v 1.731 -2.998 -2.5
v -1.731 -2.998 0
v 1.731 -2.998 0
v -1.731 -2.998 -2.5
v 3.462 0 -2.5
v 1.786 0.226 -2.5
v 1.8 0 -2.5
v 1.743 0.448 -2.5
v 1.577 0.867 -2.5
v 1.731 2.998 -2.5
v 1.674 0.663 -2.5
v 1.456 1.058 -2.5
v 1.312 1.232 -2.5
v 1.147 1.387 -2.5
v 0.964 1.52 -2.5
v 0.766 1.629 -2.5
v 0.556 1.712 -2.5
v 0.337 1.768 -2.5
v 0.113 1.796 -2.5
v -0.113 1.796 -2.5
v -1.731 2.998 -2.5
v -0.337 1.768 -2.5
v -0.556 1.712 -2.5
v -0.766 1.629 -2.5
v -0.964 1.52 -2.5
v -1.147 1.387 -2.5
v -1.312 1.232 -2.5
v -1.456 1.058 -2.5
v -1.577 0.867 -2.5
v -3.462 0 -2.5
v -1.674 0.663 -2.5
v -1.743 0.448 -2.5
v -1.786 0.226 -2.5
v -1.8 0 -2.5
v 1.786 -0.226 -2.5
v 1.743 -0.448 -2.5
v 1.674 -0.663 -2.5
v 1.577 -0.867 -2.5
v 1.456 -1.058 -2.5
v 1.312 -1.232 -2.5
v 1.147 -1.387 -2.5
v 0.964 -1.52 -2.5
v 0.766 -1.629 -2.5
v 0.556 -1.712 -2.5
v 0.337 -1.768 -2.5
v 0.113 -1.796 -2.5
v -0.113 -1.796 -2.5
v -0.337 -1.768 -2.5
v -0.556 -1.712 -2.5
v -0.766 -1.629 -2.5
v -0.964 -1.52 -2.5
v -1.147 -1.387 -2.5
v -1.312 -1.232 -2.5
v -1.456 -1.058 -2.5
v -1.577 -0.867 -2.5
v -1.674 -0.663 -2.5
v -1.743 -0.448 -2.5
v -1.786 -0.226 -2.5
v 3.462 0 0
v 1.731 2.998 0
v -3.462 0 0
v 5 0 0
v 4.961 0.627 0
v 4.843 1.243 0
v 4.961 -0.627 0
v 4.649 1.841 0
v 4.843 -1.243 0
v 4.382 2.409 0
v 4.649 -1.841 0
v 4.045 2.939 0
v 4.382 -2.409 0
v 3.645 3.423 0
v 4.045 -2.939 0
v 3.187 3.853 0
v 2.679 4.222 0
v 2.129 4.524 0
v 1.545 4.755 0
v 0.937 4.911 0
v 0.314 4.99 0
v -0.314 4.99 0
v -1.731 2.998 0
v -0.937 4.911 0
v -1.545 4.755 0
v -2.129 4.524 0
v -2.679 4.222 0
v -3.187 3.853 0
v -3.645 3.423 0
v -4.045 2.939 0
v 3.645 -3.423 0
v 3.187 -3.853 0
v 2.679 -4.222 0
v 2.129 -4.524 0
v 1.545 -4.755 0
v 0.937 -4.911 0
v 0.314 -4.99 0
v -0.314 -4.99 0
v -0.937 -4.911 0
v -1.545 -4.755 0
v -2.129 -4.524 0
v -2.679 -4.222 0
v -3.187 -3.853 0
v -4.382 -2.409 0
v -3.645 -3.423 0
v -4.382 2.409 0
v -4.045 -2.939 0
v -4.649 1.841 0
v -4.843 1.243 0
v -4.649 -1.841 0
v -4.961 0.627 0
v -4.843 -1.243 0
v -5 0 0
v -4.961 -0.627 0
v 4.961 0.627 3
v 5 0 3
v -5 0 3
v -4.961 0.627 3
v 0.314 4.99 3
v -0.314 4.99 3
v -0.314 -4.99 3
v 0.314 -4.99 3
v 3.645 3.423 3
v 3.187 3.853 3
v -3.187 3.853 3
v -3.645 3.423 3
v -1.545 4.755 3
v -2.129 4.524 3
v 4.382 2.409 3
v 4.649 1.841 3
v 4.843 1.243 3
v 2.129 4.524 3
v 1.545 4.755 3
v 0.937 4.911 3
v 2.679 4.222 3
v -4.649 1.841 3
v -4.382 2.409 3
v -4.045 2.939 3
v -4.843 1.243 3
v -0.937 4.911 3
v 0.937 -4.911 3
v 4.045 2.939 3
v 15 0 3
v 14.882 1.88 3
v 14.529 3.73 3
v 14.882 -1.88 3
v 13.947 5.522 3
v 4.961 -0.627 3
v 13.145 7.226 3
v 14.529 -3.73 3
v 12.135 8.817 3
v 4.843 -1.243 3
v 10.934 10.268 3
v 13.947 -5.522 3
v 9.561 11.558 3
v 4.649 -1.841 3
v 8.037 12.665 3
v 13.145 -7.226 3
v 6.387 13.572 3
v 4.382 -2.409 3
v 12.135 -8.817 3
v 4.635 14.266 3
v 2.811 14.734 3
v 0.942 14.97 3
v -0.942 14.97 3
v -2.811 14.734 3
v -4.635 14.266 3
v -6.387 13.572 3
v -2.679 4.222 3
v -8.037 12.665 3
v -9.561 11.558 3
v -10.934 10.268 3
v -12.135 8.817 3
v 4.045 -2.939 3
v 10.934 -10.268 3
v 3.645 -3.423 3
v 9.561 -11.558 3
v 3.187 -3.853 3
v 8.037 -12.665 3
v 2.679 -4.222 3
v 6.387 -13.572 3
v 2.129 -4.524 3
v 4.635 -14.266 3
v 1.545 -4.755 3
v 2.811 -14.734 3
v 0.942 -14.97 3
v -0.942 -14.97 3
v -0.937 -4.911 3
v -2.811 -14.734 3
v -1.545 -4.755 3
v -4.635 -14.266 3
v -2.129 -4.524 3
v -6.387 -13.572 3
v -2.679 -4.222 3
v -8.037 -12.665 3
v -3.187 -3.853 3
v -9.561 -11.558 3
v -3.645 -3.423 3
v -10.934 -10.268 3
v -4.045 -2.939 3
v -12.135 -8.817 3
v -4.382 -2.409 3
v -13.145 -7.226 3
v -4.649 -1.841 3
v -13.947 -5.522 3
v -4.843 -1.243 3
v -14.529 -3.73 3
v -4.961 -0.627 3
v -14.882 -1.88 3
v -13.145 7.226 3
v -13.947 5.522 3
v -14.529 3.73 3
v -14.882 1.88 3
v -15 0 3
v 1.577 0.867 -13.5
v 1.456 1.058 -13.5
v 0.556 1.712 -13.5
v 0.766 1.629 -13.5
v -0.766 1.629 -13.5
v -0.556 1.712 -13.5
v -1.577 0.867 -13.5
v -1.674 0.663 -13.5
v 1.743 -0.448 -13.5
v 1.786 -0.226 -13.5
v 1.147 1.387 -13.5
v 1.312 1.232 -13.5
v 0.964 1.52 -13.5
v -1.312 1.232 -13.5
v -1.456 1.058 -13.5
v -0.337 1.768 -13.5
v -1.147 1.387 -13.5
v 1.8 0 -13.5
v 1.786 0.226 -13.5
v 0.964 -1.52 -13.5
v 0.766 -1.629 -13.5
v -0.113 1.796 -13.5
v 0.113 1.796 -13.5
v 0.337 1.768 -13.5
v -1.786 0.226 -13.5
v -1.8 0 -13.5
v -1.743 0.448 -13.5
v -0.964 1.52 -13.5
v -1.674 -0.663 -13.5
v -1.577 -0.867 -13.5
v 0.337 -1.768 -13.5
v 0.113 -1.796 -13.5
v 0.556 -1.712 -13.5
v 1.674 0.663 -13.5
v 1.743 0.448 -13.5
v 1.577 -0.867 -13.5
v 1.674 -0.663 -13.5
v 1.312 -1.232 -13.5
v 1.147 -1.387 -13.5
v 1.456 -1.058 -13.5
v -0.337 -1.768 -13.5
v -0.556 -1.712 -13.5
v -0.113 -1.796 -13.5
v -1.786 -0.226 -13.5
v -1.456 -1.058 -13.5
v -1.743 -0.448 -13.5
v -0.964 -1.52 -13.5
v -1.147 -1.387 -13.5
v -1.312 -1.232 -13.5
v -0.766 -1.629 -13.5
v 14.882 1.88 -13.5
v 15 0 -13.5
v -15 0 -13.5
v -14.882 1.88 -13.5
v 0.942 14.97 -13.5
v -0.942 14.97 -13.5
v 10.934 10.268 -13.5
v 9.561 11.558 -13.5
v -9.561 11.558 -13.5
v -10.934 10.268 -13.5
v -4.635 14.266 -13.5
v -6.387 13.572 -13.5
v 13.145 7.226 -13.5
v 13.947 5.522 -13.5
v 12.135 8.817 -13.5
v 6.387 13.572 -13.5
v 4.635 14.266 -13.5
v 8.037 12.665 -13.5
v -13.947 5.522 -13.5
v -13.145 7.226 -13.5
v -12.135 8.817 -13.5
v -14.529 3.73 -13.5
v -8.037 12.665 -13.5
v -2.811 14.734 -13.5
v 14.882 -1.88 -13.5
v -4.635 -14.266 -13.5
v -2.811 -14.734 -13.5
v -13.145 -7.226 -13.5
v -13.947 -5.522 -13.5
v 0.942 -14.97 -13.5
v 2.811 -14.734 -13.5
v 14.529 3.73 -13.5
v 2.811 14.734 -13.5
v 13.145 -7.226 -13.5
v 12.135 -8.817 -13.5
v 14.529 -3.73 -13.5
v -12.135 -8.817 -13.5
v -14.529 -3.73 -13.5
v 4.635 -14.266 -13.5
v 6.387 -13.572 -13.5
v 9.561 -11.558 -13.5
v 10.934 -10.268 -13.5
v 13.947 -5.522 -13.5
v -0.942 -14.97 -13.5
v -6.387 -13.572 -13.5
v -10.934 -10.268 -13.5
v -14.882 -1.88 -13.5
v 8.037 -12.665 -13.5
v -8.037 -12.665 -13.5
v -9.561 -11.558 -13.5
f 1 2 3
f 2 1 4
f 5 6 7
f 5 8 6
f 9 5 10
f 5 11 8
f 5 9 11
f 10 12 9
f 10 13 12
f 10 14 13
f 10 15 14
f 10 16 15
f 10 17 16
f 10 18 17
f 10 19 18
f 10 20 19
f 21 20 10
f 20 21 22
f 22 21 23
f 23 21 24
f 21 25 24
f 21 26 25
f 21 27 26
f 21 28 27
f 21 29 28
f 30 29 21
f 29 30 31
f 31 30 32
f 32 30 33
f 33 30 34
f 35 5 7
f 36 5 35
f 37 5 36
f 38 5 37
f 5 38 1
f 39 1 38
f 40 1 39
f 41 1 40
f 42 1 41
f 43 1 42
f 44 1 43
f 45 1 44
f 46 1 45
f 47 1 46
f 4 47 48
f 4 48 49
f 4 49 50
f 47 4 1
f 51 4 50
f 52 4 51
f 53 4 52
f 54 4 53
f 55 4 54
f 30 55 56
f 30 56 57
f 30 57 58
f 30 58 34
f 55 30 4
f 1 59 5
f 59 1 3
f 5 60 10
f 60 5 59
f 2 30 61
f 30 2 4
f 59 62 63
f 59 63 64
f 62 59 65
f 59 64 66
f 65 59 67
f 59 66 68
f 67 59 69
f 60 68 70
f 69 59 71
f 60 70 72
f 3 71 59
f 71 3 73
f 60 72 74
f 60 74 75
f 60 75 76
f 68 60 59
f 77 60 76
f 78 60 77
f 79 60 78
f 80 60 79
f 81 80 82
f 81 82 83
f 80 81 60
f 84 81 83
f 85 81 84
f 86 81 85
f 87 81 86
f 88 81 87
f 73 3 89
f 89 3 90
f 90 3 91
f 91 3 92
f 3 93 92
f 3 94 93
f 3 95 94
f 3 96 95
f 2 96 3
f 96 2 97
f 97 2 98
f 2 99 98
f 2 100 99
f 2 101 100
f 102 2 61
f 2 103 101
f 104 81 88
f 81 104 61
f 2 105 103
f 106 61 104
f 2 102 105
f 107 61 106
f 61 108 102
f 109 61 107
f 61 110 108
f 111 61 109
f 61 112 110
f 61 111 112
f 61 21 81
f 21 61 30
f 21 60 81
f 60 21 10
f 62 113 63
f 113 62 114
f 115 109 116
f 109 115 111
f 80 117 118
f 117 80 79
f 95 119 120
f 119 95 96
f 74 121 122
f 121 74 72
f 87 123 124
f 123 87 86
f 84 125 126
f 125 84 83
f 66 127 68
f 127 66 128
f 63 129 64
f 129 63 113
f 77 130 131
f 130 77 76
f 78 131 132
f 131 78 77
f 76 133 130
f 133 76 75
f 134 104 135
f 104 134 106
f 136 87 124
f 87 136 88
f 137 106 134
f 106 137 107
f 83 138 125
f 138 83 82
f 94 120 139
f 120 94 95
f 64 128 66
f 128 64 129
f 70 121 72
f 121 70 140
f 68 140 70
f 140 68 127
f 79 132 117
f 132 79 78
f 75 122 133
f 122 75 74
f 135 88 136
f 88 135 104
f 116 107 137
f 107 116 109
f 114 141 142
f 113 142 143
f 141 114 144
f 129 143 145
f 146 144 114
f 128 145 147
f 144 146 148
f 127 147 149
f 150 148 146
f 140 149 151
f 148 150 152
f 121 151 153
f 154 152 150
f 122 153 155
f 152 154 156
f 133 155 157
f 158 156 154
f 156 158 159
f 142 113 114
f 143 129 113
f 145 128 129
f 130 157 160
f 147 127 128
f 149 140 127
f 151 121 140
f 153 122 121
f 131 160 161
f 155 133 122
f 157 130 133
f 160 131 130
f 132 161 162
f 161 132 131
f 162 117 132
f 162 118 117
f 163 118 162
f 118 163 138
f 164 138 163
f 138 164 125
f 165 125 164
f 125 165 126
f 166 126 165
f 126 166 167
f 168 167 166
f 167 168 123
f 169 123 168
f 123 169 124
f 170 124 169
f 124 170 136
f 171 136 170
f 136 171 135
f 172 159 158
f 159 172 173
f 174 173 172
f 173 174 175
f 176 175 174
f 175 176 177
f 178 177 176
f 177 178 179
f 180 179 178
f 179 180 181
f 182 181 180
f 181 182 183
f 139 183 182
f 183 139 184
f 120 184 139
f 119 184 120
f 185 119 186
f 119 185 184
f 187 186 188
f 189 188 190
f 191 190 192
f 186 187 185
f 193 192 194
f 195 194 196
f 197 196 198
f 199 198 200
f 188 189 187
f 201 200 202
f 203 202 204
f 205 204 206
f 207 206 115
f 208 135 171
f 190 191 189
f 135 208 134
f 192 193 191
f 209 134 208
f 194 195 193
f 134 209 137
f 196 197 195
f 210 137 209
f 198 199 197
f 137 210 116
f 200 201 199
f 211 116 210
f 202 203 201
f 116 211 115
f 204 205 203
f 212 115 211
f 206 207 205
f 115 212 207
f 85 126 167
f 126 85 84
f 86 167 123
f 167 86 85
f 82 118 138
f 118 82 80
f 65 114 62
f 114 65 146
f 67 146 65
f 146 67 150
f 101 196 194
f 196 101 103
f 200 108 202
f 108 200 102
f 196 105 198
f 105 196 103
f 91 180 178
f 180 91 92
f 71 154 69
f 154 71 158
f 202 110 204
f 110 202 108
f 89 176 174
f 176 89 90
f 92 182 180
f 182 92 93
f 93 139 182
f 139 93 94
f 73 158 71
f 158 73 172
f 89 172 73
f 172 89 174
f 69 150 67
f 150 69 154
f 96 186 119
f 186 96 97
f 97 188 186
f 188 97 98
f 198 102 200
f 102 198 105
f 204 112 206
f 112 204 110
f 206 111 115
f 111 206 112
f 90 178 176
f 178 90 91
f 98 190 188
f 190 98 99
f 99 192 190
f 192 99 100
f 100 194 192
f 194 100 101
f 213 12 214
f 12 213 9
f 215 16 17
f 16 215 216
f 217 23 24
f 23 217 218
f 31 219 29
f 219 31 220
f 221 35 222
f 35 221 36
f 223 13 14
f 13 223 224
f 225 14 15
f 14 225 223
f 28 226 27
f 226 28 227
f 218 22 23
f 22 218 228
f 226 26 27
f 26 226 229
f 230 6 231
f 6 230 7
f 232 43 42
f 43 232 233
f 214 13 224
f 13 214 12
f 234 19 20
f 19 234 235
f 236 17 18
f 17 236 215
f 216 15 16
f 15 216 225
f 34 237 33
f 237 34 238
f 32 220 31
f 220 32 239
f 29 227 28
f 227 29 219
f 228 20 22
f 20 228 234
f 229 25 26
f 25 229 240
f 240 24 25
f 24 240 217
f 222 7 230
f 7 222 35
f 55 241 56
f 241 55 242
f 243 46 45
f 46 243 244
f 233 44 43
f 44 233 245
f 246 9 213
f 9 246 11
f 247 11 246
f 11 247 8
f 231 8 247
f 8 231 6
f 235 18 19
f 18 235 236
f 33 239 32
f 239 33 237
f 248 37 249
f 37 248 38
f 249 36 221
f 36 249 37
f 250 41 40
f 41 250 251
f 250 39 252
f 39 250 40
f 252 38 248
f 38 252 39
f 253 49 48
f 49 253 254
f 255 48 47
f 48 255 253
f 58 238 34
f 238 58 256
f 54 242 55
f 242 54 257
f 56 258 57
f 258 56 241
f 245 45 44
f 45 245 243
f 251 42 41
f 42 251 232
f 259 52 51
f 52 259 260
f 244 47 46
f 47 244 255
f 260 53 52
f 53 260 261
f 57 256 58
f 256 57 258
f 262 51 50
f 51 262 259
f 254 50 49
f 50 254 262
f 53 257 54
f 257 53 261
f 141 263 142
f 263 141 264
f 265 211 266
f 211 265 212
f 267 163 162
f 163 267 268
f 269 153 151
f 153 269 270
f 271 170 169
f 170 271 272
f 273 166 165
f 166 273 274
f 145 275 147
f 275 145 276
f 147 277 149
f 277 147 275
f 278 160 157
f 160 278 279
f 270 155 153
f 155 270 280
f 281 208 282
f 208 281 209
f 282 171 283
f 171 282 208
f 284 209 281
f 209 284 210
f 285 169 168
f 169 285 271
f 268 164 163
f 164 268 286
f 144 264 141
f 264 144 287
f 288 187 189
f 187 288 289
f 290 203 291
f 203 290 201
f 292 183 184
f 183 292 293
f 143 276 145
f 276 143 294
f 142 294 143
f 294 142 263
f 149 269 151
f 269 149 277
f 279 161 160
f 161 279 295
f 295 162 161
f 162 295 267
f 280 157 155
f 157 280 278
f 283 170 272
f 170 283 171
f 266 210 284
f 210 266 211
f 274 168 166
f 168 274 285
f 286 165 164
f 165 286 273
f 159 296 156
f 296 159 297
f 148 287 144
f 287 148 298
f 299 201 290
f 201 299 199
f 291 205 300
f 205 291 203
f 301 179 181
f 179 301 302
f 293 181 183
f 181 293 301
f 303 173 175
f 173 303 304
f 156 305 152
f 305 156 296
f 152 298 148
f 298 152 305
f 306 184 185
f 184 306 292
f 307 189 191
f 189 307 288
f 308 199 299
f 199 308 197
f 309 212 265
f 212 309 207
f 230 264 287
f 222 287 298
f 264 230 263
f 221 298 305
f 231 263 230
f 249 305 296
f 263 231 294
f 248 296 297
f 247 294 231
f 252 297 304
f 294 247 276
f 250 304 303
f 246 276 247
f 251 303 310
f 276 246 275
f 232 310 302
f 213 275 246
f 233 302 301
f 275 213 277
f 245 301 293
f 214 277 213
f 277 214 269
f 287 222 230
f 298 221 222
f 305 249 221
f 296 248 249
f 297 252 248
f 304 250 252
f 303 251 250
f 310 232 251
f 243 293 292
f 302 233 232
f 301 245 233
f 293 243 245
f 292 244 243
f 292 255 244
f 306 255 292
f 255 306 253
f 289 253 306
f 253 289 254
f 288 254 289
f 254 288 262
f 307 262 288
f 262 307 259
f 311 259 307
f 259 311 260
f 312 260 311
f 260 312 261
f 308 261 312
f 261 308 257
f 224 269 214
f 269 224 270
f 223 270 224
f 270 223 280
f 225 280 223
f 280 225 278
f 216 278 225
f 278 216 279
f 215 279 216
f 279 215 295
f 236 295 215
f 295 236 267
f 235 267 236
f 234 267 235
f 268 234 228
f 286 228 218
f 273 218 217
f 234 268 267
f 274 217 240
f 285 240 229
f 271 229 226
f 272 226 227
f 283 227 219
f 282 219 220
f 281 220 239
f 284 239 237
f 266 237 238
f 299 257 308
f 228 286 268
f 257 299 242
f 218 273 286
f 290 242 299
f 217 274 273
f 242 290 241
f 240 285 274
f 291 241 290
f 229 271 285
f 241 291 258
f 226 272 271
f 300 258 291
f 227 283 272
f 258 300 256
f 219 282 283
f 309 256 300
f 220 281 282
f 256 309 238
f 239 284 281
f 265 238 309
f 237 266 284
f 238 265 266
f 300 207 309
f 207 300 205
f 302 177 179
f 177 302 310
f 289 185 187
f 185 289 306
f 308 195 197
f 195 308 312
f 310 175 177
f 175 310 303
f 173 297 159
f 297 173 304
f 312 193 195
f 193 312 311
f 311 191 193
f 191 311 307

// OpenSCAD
$fn = 50;

difference() {
	union() {
		translate(v = [0, 0, -13.5]) {
			cylinder(h = 16.5, r = 15.0);
		}
	}
	union() {
		translate(v = [0, 0, 0]) {
			rotate(a = [0, 0, 0]) {
				difference() {
					union() {
						translate(v = [0, 0, -2.5]) {
							linear_extrude(height = 2.5) {
								polygon(points = [[3.4619999999999997, 0.0], [1.7310000000000003, 2.9981799479017264], [-1.7309999999999992, 2.9981799479017264], [-3.4619999999999997, 4.2397272186481365e-16], [-1.7310000000000014, -2.998179947901726], [1.7309999999999977, -2.9981799479017277]]);
							}
						}
					}
					union();
				}
			}
		}
		#cylinder(h = 3, r = 5.0);
		#translate(v = [0, 0, -100.0]) {
			cylinder(h = 200, r = 1.8);
		}
	}
}
